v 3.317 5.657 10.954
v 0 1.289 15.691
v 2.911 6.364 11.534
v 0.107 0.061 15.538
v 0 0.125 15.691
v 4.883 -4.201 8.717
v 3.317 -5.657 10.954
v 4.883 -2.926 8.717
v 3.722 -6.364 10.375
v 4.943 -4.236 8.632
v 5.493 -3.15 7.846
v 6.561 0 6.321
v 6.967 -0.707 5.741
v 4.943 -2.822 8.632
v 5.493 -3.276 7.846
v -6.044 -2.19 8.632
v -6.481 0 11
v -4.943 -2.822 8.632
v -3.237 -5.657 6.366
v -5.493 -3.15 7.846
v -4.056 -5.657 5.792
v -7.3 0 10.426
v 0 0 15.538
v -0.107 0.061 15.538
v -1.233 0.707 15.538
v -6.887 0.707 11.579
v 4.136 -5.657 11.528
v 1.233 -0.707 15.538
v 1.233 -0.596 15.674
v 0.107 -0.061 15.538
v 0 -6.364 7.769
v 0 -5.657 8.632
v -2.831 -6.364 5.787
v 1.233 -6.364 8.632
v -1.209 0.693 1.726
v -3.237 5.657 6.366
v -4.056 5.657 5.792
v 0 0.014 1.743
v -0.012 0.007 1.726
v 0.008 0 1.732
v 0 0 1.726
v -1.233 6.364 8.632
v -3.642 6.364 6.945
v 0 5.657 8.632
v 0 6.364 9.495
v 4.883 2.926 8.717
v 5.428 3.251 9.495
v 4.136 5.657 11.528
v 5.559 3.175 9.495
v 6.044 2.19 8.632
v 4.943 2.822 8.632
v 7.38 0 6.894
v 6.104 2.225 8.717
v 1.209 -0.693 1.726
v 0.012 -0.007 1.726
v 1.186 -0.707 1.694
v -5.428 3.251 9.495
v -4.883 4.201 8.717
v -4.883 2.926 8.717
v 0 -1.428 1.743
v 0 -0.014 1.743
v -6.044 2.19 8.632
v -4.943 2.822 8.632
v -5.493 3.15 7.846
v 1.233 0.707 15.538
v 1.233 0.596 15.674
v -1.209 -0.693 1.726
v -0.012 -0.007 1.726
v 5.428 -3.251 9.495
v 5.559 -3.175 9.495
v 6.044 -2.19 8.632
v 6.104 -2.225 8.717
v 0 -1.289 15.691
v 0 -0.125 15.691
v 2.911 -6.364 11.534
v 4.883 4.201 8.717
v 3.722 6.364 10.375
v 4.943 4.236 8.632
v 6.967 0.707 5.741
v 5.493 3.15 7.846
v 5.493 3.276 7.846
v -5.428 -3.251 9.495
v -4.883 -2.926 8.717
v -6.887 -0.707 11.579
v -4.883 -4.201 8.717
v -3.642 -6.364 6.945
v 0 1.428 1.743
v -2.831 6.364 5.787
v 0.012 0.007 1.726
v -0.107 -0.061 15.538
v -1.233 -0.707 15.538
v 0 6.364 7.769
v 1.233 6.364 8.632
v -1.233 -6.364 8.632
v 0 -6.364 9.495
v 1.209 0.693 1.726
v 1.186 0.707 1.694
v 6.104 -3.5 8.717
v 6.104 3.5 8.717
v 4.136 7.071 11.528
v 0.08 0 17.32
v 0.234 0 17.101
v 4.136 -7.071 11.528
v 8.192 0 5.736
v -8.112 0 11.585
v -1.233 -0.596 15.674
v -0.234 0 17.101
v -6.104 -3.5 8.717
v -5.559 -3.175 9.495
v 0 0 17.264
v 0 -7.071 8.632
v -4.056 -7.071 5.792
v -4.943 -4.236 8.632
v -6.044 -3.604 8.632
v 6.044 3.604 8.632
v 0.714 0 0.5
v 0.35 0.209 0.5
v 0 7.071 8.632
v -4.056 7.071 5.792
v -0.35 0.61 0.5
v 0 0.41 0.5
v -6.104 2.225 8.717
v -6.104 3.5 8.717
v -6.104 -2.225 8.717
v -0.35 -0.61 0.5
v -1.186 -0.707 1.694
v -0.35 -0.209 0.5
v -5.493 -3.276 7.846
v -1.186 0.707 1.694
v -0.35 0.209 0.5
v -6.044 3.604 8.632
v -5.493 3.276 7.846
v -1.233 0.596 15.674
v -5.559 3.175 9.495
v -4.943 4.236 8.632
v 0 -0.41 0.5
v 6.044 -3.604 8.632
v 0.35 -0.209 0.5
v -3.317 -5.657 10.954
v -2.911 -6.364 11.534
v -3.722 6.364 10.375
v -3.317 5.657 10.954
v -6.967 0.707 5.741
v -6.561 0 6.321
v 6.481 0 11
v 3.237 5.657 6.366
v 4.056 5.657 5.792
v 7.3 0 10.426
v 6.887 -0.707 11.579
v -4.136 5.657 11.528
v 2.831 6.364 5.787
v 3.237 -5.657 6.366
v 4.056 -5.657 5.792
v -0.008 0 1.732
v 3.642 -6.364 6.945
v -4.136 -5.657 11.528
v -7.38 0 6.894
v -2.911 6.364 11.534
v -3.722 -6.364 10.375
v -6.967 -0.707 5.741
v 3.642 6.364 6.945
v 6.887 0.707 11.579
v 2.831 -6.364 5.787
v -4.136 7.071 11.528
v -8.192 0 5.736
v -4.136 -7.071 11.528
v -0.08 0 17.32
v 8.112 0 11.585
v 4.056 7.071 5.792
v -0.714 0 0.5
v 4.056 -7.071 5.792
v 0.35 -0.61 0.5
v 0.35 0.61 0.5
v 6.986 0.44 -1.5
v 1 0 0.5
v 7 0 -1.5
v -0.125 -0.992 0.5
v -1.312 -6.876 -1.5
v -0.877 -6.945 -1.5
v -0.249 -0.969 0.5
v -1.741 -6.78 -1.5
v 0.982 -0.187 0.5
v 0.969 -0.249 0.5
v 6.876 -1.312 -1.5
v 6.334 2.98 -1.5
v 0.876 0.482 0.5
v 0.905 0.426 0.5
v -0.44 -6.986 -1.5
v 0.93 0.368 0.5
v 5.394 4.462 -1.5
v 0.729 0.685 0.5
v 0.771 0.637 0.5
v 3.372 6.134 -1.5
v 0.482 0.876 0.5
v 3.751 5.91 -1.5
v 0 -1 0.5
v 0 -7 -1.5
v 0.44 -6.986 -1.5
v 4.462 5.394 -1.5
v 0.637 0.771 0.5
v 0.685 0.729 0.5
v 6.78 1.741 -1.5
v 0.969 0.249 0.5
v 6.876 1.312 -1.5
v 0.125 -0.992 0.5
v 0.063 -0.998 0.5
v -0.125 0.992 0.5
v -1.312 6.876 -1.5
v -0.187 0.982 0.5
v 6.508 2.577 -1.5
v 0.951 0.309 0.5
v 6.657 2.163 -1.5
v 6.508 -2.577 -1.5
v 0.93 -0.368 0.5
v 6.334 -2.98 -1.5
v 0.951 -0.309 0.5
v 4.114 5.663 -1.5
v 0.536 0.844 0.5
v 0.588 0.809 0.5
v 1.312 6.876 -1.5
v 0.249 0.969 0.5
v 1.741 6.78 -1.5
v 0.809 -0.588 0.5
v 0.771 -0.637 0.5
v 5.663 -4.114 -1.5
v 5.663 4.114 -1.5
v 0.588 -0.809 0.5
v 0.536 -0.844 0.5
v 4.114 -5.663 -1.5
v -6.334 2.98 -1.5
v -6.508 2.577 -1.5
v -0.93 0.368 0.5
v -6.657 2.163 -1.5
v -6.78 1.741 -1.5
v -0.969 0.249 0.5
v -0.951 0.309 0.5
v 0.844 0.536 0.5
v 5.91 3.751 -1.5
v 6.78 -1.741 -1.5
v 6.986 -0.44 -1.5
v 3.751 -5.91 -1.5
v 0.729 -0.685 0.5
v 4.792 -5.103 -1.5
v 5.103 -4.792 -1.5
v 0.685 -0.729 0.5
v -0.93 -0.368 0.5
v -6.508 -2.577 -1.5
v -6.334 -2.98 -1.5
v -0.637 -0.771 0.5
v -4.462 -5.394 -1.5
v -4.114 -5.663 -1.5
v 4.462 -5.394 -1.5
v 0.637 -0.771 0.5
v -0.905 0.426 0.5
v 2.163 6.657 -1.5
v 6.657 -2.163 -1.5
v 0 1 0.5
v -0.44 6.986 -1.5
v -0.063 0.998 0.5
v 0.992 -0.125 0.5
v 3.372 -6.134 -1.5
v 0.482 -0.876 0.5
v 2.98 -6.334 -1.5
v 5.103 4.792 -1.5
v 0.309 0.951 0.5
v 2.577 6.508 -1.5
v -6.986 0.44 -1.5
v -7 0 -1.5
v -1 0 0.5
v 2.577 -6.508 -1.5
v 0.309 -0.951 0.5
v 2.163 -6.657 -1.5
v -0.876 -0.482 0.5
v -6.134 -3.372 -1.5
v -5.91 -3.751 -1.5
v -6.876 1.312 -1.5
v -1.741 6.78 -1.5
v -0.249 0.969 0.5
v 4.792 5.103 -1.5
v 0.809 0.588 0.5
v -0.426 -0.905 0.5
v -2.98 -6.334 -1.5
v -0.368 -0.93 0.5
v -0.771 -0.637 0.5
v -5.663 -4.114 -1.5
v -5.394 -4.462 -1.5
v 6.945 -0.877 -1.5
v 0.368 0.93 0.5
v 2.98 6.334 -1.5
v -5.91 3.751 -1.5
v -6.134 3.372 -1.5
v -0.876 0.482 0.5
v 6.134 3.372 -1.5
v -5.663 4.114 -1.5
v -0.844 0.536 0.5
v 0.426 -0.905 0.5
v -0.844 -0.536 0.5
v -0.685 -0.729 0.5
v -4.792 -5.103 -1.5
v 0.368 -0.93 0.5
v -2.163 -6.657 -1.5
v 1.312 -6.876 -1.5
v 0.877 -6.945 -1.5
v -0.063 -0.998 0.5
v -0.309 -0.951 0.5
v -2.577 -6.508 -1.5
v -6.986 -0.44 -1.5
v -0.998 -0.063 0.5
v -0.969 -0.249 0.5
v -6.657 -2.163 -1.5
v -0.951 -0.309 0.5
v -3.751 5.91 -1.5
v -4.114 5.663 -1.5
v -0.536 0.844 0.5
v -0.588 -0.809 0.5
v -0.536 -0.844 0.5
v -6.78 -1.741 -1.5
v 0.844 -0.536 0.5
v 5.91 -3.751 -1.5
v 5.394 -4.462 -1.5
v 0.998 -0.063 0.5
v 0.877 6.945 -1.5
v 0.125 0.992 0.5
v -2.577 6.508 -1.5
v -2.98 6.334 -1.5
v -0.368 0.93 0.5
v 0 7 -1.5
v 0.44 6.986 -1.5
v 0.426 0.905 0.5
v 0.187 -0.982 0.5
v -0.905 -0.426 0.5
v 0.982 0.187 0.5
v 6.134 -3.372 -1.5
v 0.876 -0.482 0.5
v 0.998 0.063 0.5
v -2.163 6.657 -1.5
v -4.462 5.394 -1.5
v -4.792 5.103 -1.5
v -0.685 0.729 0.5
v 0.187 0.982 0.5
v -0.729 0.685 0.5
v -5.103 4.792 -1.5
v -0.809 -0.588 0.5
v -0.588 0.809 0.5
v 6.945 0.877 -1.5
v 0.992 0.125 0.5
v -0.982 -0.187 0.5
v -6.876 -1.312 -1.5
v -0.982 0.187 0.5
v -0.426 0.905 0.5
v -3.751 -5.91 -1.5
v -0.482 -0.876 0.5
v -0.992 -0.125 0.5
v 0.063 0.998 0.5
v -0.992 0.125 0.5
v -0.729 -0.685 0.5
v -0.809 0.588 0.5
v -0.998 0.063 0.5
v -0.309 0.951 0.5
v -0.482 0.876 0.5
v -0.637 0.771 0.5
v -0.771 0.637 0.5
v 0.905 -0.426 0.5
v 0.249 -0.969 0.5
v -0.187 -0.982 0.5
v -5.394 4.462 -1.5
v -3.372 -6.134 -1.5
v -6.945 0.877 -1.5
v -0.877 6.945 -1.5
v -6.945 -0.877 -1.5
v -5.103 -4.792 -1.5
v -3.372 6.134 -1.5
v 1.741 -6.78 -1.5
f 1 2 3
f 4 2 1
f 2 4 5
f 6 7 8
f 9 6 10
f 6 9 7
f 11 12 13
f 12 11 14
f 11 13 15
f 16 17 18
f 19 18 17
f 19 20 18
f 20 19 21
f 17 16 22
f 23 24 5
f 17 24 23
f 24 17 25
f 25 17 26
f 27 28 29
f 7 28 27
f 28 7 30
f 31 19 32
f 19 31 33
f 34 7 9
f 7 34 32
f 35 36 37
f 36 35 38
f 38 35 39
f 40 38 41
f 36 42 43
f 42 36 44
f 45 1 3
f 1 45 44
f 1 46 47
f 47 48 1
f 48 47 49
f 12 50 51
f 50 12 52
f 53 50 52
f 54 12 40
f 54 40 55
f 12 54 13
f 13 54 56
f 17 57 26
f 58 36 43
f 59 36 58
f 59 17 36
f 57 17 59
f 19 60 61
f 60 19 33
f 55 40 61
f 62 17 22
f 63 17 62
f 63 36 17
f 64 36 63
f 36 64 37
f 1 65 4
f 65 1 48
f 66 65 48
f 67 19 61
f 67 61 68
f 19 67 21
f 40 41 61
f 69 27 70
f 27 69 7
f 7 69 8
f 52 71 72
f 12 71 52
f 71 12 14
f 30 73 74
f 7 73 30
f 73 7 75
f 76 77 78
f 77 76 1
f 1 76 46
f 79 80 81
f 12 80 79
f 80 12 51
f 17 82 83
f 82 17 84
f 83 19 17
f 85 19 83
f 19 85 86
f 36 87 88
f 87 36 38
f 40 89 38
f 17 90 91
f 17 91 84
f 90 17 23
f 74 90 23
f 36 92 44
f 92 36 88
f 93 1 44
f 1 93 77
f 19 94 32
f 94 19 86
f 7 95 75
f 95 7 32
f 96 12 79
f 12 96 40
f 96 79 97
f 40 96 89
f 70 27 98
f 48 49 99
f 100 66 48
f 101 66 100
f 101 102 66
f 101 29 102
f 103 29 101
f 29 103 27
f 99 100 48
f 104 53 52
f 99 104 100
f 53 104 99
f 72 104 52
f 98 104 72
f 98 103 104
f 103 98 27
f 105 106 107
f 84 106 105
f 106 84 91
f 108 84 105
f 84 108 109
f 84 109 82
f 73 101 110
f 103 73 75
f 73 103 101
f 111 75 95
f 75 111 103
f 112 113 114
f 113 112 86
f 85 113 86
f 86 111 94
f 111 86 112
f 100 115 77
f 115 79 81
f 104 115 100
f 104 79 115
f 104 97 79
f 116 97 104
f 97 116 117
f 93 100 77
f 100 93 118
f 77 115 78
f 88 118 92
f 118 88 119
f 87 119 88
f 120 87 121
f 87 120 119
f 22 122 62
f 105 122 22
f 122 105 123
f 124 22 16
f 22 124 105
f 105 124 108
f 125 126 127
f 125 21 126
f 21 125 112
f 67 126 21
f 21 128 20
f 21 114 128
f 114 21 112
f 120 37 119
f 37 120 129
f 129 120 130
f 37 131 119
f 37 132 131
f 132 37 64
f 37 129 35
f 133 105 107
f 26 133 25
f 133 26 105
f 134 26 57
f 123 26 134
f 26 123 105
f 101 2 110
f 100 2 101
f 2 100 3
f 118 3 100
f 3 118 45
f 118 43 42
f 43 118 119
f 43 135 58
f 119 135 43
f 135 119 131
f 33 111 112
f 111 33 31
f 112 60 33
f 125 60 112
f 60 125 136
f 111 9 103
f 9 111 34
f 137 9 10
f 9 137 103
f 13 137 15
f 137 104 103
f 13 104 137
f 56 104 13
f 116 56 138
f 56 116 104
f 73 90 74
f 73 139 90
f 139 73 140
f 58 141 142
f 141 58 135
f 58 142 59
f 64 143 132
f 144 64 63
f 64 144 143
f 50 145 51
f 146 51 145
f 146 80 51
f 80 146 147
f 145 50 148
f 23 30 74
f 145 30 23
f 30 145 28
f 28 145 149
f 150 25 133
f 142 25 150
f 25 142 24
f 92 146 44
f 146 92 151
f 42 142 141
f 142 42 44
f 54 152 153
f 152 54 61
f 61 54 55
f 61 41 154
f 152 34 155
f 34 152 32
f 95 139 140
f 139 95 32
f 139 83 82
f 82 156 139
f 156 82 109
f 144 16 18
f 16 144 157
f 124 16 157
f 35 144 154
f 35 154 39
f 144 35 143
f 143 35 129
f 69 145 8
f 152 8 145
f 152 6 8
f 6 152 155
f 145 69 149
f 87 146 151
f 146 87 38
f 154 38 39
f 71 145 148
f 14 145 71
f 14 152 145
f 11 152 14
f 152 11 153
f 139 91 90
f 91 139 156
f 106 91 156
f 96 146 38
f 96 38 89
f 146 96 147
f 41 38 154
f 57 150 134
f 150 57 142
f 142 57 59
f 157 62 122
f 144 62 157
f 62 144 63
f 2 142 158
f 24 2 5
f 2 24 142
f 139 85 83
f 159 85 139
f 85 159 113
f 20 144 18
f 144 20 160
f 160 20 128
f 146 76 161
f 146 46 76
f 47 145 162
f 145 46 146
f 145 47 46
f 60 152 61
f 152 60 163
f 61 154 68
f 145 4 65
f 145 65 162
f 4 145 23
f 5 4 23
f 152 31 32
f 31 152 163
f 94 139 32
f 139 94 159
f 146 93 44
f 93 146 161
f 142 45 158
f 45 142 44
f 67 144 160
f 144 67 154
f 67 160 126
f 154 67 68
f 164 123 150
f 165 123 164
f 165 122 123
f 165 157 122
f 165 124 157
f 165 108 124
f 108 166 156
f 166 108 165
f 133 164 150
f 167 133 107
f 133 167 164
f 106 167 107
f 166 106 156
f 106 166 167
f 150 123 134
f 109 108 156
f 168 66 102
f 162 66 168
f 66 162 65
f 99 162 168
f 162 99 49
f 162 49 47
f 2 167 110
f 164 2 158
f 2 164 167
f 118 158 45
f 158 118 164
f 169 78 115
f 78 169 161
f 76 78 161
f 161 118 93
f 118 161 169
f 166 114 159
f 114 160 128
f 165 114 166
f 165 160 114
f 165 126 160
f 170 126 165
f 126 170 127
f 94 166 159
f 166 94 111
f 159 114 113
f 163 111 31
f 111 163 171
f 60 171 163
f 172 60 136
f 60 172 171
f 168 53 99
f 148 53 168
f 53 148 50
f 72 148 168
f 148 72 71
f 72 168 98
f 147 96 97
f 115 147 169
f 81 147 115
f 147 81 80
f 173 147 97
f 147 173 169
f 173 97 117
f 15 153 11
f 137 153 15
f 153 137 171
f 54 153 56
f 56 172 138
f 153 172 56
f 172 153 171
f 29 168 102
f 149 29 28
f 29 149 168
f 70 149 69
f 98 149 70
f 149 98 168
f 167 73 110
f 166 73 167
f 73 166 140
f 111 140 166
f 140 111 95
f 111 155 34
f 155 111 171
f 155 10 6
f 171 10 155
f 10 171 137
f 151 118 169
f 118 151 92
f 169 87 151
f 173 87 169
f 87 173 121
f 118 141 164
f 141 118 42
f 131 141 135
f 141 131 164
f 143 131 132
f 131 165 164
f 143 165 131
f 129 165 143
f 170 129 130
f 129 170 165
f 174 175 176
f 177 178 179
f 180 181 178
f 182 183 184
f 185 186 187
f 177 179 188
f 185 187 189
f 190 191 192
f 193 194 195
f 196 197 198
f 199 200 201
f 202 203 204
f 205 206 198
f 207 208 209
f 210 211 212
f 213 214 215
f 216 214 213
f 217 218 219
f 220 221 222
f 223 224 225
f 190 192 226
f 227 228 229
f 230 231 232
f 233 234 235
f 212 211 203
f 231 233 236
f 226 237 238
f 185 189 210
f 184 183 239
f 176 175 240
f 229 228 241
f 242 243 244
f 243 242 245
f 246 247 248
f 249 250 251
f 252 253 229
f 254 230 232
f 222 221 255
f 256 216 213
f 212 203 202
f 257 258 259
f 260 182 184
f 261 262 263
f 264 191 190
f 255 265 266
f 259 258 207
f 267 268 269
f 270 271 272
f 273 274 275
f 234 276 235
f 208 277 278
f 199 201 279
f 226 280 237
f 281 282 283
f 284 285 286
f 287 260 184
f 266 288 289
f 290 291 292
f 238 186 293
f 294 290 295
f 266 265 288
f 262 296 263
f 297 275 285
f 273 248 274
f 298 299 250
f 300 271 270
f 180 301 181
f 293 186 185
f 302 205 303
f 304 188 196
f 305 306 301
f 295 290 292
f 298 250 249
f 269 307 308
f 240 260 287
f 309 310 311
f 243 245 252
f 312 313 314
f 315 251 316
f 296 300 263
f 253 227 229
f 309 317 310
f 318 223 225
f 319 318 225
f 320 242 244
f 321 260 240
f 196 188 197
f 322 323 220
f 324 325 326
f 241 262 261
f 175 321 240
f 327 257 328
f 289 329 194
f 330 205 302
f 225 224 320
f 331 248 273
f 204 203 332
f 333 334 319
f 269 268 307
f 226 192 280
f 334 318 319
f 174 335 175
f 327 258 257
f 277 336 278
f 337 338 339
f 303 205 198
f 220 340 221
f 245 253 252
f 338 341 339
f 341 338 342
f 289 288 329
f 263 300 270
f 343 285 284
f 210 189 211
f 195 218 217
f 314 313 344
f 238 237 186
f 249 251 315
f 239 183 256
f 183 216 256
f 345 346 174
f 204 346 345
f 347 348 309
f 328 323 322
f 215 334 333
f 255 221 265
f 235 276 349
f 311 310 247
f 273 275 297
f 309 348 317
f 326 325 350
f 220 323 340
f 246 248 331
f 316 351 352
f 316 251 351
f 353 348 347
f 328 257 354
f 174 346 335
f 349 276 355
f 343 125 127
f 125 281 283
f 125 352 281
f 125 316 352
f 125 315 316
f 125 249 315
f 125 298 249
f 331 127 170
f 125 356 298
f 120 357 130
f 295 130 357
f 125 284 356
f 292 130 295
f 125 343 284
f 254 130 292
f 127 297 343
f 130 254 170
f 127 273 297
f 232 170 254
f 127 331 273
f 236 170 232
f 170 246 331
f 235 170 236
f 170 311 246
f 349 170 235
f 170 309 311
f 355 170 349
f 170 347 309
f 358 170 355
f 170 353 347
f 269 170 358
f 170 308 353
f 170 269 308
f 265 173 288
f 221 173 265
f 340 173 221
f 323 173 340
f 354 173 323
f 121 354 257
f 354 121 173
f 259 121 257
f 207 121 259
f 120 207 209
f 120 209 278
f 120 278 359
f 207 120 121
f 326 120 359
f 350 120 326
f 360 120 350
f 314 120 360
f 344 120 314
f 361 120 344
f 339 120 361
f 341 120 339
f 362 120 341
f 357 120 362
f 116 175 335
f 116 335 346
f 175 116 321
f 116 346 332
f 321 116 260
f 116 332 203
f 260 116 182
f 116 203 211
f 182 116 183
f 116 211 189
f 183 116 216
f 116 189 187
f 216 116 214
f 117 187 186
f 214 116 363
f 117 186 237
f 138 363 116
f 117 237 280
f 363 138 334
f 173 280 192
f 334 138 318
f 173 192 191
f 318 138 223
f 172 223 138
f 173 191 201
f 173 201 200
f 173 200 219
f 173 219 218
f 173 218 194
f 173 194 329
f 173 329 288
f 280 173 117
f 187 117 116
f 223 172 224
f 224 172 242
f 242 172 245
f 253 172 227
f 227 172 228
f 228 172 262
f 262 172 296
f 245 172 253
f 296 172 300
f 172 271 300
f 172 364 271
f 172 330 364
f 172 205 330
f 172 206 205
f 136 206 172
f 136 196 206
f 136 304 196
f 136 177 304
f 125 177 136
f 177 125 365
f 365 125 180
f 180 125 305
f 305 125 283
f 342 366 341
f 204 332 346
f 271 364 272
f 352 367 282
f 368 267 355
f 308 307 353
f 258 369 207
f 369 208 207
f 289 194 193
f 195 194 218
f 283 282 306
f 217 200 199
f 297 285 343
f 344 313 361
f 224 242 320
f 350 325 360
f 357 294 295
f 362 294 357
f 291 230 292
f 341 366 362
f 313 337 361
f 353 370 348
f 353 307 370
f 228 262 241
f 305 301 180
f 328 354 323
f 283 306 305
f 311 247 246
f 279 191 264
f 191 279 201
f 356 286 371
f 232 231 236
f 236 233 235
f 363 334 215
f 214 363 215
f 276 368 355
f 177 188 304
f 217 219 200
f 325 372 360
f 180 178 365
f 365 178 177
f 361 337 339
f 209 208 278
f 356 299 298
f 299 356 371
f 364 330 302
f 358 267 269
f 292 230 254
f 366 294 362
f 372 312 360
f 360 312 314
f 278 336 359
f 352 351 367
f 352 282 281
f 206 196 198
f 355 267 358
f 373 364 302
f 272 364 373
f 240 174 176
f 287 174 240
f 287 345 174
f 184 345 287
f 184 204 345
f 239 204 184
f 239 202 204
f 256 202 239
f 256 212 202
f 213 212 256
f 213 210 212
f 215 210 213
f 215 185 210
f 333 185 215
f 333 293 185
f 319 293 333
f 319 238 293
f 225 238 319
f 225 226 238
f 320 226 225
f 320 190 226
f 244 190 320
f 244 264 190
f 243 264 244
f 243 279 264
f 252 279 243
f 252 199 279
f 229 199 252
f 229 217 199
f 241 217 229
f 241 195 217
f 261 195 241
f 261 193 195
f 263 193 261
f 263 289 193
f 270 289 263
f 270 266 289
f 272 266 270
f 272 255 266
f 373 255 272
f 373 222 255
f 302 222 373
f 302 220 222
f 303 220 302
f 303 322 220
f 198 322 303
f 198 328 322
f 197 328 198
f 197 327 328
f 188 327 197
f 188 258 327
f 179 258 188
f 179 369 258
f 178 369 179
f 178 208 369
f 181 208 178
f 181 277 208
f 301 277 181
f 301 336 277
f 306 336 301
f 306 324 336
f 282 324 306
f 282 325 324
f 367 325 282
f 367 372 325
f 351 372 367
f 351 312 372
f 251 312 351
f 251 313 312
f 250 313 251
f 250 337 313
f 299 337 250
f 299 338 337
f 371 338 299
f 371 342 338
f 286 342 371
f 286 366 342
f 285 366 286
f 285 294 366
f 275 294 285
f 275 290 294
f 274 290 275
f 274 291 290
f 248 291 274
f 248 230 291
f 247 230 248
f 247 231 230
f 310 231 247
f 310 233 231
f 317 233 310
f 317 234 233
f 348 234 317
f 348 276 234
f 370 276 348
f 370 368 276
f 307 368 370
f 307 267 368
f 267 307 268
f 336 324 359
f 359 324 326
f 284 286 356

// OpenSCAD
// file: cube_frame.scad
module cube_frame(width, depth, height, frameThickness = 1) {
    difference() {
        cube([width, depth, height]);
        color("red") {
            translate([frameThickness, -frameThickness, frameThickness]) {
                cube([width - (2*frameThickness), depth + (2*frameThickness), height - (2*frameThickness)]);
            }
            translate([-frameThickness, frameThickness, frameThickness]) {
                cube([width + (2*frameThickness), depth - (2*frameThickness), height - (2*frameThickness)]);
            }
            translate([frameThickness, frameThickness, -frameThickness]) {
                cube([width - (2*frameThickness), depth - (2*frameThickness), height + (2*frameThickness)]);
            }
        }
    }
}
// main file
use <cube_frame.scad>;

cubeSize = 10;

// Balance the cube on its corner and then
// add a rotated variant at 180 degrees
//
for(i = [0 : 180 : 360]) {
    rotate([45, -35, i]) {
        cube_frame(cubeSize, cubeSize, cubeSize, 1);
    }
}

translate([0,0,-1.5]) {
    cylinder(2, 7, 1, $fn=100);
}
